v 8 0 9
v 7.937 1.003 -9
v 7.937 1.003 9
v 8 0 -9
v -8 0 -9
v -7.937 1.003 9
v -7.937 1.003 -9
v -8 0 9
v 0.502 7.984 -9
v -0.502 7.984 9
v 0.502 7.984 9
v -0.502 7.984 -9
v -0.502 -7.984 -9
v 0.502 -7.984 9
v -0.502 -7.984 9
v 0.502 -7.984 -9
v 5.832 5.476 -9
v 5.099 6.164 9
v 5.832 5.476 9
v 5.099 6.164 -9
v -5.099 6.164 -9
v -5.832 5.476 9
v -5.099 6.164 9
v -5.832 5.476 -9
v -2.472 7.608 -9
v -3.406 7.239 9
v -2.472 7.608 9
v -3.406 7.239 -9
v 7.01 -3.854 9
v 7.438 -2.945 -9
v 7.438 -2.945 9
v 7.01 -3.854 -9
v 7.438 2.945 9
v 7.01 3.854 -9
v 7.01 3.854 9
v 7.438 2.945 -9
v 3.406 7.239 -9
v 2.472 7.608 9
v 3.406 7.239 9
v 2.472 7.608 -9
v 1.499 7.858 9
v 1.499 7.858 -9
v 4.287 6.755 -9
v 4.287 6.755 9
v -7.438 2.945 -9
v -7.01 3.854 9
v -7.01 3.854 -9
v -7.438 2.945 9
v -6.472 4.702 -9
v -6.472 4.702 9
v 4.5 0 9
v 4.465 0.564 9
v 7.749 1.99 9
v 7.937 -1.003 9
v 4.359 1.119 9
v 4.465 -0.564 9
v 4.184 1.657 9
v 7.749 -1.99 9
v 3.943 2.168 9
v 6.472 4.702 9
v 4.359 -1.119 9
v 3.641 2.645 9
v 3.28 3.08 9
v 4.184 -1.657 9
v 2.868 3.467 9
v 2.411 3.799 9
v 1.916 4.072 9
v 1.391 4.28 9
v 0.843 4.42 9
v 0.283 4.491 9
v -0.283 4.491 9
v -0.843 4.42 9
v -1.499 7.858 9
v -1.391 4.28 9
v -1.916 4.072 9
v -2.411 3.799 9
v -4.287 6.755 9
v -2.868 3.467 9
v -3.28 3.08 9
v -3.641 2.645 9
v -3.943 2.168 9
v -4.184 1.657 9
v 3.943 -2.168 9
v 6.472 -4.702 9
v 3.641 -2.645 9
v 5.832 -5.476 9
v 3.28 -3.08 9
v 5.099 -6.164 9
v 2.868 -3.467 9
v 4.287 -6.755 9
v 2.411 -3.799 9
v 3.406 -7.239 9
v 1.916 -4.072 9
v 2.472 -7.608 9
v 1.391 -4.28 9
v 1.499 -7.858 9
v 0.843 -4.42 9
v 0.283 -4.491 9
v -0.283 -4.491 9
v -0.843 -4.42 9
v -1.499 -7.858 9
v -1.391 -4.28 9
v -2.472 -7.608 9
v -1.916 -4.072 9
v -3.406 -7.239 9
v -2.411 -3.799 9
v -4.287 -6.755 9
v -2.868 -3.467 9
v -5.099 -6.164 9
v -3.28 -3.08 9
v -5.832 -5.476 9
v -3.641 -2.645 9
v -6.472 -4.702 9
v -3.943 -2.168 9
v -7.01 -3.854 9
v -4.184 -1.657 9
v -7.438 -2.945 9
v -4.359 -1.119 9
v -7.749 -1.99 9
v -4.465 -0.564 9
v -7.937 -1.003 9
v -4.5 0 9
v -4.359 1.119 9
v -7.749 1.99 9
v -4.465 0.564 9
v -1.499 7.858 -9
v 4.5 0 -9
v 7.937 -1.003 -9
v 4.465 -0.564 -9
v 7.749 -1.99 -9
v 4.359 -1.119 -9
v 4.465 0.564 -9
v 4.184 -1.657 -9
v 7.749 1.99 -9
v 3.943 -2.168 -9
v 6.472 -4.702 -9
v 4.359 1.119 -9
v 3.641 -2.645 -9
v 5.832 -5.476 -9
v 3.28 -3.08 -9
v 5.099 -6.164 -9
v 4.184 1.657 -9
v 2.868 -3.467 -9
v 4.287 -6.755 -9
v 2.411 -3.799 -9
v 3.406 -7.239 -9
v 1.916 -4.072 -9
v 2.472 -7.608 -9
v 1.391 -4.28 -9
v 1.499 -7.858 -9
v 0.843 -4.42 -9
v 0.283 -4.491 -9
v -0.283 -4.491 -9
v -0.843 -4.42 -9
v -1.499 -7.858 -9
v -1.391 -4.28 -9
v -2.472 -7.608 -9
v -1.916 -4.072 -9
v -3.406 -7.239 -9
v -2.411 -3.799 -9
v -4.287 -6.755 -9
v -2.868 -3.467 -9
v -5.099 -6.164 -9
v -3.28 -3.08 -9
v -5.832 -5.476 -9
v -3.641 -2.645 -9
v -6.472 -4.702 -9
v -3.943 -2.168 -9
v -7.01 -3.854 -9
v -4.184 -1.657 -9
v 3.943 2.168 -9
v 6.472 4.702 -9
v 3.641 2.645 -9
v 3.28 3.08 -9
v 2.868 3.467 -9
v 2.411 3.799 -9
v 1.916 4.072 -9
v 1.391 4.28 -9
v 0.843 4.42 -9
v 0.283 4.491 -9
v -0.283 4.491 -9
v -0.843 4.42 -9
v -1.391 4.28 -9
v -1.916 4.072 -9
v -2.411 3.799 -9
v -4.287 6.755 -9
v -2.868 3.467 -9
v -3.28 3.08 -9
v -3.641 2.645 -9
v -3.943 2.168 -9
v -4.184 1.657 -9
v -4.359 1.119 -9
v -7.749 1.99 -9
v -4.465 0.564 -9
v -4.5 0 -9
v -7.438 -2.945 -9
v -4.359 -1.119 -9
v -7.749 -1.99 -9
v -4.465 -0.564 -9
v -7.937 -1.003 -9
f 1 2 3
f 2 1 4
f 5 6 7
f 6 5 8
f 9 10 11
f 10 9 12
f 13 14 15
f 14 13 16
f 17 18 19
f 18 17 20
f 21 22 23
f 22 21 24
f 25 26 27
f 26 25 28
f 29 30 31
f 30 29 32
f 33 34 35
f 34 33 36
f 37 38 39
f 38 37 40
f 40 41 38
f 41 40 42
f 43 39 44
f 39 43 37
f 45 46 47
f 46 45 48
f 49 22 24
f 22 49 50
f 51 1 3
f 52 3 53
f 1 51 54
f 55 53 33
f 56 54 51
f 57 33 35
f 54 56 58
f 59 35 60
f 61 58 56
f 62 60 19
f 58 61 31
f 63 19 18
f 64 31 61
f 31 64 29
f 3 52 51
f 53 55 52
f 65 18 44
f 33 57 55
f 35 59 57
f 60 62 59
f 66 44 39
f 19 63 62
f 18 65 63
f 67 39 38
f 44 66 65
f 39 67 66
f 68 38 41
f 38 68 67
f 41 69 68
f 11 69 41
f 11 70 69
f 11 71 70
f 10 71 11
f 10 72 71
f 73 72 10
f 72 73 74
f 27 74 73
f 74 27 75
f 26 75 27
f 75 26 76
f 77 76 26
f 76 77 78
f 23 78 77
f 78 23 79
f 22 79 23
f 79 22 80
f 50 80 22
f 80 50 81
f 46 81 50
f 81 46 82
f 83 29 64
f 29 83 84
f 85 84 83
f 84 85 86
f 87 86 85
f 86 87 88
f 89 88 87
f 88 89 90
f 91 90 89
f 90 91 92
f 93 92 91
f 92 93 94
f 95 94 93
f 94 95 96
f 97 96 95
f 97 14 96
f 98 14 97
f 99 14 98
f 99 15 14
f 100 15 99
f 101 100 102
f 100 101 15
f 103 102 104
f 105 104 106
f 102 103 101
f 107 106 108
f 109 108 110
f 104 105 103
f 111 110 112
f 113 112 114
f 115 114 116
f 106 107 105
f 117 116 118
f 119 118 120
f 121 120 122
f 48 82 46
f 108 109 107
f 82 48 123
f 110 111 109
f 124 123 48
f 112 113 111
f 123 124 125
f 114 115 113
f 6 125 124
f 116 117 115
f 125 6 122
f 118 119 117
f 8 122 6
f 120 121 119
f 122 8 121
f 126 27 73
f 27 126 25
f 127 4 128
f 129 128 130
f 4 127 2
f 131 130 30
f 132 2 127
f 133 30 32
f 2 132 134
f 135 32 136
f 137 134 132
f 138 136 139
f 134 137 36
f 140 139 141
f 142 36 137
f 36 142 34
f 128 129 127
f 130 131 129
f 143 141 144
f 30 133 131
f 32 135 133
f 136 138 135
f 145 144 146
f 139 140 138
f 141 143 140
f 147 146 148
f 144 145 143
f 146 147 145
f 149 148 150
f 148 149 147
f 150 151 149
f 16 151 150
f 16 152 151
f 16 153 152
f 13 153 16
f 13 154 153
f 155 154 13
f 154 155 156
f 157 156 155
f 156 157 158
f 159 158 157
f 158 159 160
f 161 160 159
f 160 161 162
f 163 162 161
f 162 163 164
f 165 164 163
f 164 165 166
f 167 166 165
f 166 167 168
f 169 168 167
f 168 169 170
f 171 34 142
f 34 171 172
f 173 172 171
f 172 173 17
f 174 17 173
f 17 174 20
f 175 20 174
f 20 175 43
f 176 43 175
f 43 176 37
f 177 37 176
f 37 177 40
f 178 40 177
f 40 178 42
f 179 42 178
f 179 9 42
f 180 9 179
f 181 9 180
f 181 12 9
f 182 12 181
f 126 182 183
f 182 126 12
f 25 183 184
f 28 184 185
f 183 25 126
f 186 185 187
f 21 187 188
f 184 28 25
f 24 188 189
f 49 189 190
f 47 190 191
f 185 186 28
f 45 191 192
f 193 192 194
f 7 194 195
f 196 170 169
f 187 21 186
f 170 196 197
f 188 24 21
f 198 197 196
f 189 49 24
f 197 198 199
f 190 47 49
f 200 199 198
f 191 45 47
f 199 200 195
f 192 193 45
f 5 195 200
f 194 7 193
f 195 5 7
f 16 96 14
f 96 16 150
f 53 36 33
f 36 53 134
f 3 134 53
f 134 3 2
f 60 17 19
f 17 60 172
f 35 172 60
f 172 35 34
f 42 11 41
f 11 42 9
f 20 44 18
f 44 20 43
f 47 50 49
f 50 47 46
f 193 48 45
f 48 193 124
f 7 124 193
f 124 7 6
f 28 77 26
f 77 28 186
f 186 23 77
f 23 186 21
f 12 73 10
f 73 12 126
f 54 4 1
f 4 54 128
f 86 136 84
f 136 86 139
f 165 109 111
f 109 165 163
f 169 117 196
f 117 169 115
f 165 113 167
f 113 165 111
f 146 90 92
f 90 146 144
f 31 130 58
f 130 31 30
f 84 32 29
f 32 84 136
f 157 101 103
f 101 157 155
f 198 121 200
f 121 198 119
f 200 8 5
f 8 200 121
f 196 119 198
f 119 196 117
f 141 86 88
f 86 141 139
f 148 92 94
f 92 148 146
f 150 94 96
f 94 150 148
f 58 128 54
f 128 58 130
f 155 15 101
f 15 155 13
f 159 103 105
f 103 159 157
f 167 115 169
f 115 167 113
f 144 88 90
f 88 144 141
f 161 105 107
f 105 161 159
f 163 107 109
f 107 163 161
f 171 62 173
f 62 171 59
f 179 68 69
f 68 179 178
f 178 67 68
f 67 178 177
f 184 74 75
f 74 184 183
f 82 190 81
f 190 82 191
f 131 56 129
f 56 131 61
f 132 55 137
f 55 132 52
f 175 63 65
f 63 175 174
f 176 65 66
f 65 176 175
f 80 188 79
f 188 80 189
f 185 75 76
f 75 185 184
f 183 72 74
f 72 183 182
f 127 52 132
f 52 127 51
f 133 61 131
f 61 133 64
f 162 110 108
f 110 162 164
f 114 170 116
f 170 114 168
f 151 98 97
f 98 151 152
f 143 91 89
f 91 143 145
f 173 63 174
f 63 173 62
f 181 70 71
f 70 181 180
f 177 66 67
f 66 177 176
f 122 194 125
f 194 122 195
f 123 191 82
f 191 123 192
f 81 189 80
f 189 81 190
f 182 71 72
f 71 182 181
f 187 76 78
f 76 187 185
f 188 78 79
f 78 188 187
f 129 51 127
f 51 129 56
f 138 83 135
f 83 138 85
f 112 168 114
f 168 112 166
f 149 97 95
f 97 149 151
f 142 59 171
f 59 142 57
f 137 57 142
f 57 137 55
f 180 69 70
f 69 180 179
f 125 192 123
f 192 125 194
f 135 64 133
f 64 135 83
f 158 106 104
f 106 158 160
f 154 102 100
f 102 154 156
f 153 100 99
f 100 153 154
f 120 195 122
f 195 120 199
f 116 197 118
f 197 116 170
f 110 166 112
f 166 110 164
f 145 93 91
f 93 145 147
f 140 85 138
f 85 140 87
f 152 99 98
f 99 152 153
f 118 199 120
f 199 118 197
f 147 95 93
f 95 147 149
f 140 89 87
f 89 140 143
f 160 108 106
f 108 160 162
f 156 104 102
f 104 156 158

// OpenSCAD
$fn = 50;


difference() {
	union() {
		translate(v = [0, 0, -9.0000000000]) {
			cylinder(h = 18, r = 8.0000000000);
		}
	}
	union() {
		translate(v = [0, 0, -100.0000000000]) {
			cylinder(h = 200, r = 4.5000000000);
		}
	}
}
